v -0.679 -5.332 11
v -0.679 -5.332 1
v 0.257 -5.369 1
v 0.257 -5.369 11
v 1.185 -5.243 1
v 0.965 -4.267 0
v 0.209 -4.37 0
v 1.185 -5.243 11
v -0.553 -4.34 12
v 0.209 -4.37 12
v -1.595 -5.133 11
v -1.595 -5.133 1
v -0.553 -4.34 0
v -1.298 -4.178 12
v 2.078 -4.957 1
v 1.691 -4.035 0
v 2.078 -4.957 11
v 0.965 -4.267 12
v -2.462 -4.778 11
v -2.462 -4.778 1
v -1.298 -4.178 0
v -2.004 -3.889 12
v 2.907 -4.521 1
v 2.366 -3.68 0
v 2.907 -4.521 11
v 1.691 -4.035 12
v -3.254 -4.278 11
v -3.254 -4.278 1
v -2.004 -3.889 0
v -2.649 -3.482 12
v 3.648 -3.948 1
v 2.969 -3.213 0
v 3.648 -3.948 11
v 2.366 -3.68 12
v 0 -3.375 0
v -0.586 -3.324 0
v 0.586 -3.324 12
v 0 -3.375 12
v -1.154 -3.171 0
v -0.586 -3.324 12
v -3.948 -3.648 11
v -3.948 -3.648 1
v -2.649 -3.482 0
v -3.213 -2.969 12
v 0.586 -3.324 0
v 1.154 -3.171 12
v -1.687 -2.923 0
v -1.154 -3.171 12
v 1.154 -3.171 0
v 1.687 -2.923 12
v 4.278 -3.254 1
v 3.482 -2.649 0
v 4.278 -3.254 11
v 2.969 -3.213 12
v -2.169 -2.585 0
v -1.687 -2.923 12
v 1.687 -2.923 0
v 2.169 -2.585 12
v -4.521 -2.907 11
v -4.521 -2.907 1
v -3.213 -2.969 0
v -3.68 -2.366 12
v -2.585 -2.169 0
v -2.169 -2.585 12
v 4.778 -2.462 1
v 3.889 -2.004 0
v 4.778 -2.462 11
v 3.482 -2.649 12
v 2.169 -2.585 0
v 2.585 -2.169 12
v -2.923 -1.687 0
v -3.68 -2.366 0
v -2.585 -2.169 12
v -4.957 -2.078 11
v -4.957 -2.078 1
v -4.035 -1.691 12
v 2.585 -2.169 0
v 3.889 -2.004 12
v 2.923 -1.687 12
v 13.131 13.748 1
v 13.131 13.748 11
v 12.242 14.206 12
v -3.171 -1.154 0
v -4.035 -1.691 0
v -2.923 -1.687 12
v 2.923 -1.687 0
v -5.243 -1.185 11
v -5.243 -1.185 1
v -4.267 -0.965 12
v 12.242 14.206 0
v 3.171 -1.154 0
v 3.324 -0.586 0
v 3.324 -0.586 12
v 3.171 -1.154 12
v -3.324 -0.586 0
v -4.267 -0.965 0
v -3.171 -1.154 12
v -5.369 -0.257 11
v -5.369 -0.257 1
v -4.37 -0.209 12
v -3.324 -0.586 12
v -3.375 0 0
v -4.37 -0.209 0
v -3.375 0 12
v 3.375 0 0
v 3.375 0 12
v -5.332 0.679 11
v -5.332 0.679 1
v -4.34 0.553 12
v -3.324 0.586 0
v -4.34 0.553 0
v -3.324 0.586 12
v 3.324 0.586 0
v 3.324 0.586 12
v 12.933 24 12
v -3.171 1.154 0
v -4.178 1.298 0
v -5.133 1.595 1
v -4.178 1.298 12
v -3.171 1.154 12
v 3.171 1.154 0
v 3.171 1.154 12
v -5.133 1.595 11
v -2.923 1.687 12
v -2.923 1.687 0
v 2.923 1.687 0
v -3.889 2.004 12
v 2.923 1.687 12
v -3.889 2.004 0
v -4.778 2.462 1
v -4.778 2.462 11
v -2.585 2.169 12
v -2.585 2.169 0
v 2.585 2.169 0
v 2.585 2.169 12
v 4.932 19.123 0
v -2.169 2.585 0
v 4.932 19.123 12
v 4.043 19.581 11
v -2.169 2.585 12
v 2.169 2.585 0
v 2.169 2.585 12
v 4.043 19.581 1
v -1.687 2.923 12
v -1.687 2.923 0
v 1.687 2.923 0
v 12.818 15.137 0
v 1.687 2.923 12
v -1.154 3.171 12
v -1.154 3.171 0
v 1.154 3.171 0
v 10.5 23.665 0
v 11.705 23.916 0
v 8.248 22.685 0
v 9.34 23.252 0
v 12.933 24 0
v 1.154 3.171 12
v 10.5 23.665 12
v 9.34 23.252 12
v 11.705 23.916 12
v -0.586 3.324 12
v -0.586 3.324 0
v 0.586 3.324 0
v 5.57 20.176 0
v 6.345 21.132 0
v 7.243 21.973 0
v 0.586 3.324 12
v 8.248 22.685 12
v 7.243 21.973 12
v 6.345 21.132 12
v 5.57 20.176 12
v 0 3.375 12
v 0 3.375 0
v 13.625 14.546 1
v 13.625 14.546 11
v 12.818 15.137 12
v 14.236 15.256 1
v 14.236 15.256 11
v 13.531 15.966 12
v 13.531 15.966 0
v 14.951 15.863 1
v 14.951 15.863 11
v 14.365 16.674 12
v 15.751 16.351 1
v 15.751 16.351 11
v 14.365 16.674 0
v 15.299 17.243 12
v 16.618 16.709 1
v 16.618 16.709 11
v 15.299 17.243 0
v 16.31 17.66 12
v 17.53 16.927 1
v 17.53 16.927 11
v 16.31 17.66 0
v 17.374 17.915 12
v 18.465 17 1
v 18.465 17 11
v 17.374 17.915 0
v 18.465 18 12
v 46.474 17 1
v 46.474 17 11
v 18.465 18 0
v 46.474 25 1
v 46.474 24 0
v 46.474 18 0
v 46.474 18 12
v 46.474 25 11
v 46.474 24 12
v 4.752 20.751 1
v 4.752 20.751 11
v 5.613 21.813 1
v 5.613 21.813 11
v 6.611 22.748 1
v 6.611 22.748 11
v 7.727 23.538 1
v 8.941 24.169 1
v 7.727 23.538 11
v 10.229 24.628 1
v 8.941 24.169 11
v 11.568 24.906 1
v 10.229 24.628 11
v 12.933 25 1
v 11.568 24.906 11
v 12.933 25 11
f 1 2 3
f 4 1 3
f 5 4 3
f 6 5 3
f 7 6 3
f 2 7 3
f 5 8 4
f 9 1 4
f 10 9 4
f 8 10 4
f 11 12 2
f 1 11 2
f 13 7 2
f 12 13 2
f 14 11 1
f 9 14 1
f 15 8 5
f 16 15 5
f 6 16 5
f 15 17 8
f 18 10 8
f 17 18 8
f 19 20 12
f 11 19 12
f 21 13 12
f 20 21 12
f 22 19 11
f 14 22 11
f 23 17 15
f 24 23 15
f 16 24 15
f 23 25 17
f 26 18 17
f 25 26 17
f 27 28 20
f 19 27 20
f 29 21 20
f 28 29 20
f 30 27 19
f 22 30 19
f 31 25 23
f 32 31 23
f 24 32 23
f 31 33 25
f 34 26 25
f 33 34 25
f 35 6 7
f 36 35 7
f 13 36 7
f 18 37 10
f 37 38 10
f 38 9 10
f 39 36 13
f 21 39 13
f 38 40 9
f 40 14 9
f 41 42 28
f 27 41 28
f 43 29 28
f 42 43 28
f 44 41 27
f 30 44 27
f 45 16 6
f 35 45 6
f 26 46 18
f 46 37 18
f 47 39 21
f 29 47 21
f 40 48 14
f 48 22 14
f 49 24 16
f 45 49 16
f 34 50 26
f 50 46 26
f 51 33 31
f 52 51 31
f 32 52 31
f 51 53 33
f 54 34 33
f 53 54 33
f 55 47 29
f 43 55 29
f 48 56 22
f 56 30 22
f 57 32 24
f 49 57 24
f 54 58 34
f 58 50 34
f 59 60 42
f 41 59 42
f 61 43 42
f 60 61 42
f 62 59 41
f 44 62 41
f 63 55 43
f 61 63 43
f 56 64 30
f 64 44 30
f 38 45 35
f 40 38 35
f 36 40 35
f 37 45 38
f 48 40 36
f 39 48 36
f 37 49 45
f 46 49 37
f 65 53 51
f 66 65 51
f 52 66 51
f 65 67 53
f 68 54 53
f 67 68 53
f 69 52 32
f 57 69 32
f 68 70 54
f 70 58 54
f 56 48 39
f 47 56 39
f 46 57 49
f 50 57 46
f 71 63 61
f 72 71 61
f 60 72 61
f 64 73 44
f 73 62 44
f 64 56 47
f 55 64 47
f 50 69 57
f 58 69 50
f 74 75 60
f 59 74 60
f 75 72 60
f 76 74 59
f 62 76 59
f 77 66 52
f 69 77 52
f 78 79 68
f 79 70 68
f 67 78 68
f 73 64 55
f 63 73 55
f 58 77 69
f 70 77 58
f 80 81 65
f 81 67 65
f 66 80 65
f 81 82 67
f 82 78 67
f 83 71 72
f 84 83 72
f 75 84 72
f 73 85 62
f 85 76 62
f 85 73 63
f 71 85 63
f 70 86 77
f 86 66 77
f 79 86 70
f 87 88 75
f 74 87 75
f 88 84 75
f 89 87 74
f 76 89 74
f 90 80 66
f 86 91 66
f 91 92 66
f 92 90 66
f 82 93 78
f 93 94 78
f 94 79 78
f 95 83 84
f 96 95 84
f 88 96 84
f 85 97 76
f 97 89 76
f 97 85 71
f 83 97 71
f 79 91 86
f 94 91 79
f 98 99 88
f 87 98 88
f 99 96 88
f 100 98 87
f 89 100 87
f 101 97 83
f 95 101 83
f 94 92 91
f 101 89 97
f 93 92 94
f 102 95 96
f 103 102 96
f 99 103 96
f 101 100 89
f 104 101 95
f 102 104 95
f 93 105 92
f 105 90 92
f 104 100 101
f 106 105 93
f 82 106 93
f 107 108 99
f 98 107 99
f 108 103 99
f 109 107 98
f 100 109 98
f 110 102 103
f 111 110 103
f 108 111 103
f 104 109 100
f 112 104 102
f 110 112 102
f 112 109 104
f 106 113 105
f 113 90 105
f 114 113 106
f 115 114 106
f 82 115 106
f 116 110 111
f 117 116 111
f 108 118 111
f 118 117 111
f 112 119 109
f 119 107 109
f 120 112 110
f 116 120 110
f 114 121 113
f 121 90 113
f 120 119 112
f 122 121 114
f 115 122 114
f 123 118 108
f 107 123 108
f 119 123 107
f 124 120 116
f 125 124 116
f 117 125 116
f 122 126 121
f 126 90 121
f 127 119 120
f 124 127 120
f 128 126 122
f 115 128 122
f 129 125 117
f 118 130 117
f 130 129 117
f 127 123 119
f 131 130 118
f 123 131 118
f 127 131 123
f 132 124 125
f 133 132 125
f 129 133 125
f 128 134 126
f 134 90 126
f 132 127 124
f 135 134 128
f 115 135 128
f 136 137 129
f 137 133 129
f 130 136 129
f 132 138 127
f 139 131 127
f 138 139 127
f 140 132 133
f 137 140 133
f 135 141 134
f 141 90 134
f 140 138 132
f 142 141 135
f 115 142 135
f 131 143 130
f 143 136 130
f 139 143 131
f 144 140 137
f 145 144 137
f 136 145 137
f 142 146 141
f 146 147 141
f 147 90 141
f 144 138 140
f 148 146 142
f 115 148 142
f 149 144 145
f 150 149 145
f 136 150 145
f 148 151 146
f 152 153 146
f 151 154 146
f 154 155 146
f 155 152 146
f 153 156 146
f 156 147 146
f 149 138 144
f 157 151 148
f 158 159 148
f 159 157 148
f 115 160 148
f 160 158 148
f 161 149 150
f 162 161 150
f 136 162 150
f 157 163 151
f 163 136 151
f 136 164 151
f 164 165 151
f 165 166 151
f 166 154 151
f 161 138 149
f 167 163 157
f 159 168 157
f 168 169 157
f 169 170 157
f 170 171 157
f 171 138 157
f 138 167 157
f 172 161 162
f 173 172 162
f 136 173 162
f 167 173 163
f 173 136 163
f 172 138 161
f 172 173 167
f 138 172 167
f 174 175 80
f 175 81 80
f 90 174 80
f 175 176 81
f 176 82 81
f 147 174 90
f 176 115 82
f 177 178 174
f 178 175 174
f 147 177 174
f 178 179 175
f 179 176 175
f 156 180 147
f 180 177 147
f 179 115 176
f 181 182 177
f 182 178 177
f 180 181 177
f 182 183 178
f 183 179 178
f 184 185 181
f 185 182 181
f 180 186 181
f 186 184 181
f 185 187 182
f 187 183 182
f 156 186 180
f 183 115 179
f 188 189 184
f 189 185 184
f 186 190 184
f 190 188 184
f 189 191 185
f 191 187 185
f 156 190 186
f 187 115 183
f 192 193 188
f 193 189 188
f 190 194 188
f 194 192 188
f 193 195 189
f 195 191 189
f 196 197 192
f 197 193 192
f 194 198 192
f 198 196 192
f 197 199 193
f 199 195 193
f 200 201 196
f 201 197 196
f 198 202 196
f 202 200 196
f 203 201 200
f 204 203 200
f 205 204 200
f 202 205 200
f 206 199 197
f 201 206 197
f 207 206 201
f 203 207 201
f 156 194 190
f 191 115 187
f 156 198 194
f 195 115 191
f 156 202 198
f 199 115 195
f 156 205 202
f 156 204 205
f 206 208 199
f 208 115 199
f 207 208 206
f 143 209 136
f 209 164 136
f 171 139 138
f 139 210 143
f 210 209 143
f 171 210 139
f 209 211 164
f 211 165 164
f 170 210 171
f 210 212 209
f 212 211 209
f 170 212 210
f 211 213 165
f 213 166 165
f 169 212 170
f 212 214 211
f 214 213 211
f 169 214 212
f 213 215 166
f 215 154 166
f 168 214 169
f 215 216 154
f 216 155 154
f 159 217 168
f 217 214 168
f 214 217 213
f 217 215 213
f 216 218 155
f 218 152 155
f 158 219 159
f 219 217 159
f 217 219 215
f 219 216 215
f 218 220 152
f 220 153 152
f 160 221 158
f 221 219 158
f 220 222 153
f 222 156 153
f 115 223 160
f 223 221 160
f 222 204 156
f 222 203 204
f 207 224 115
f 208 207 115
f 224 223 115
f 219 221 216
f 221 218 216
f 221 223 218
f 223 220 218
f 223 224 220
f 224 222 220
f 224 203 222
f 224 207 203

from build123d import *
from OCP.BRepFilletAPI import BRepFilletAPI_MakeFillet

# Parameters (mm, degrees)
SKETCH1_R           = 3.375
BOSS_EXTRUDE1_DEPTH = 12
FILLET1_R1          = 10
FILLET1_R2          = 6
CHAMFER1_SIZE       = 1


with BuildPart() as part:
    # Sketch1 → Boss-Extrude1 (new body)
    with BuildSketch(Plane.XY):
        with BuildLine():
            Line((6.836003543, 25), (-4.777935452, 2.462104347))
            ThreePointArc((-4.777935452, 2.462104347), (-2.462104347, -4.777935452), (4.777935452, -2.462104347))
            Line((4.777935452, -2.462104347), (14.806897165, 17))
            Line((14.806897165, 17), (46.473934517, 17))
            Line((46.473934517, 17), (46.473934517, 25))
            Line((46.473934517, 25), (6.836003543, 25))
        make_face()
        Circle(SKETCH1_R, mode=Mode.SUBTRACT)
    extrude(amount=BOSS_EXTRUDE1_DEPTH)

    # Fillet1: one fillet with a radius per group of edges: ONE call of the kernel's fillet builder (fillet() takes one radius for all edges)
    fillet1_edges_1 = [part.edges().sort_by_distance(p)[0] for p in [
        (6.836003543, 25, 6),
    ]]
    fillet1_edges_2 = [part.edges().sort_by_distance(p)[0] for p in [
        (14.806897165, 17, 6),
    ]]
    fillet1 = BRepFilletAPI_MakeFillet(part.part.solid().wrapped)
    for e in fillet1_edges_1:
        fillet1.Add(FILLET1_R1, e.wrapped)
    for e in fillet1_edges_2:
        fillet1.Add(FILLET1_R2, e.wrapped)
    add(Compound.cast(fillet1.Shape()), mode=Mode.REPLACE)

    # Chamfer1
    chamfer1_edges = [part.edges().sort_by_distance(p)[0] for p in [
        (32.469382985, 17, 0),
        (15.341561797, 16.123005627, 0),
        (8.954628782, 5.643145602, 0),
        (-2.462104347, -4.777935452, 0),
        (-0.367278499, 11.021381799, 0),
        (7.727111262, 23.538342711, 0),
        (29.703247603, 25, 0),
        (32.469382985, 17, 12),
        (15.341561797, 16.123005627, 12),
        (8.954628782, 5.643145602, 12),
        (-2.462104347, -4.777935452, 12),
        (-0.367278499, 11.021381799, 12),
        (7.727111262, 23.538342711, 12),
        (29.703247603, 25, 12),
    ]]
    chamfer(chamfer1_edges, length=CHAMFER1_SIZE)


solid = part.part
